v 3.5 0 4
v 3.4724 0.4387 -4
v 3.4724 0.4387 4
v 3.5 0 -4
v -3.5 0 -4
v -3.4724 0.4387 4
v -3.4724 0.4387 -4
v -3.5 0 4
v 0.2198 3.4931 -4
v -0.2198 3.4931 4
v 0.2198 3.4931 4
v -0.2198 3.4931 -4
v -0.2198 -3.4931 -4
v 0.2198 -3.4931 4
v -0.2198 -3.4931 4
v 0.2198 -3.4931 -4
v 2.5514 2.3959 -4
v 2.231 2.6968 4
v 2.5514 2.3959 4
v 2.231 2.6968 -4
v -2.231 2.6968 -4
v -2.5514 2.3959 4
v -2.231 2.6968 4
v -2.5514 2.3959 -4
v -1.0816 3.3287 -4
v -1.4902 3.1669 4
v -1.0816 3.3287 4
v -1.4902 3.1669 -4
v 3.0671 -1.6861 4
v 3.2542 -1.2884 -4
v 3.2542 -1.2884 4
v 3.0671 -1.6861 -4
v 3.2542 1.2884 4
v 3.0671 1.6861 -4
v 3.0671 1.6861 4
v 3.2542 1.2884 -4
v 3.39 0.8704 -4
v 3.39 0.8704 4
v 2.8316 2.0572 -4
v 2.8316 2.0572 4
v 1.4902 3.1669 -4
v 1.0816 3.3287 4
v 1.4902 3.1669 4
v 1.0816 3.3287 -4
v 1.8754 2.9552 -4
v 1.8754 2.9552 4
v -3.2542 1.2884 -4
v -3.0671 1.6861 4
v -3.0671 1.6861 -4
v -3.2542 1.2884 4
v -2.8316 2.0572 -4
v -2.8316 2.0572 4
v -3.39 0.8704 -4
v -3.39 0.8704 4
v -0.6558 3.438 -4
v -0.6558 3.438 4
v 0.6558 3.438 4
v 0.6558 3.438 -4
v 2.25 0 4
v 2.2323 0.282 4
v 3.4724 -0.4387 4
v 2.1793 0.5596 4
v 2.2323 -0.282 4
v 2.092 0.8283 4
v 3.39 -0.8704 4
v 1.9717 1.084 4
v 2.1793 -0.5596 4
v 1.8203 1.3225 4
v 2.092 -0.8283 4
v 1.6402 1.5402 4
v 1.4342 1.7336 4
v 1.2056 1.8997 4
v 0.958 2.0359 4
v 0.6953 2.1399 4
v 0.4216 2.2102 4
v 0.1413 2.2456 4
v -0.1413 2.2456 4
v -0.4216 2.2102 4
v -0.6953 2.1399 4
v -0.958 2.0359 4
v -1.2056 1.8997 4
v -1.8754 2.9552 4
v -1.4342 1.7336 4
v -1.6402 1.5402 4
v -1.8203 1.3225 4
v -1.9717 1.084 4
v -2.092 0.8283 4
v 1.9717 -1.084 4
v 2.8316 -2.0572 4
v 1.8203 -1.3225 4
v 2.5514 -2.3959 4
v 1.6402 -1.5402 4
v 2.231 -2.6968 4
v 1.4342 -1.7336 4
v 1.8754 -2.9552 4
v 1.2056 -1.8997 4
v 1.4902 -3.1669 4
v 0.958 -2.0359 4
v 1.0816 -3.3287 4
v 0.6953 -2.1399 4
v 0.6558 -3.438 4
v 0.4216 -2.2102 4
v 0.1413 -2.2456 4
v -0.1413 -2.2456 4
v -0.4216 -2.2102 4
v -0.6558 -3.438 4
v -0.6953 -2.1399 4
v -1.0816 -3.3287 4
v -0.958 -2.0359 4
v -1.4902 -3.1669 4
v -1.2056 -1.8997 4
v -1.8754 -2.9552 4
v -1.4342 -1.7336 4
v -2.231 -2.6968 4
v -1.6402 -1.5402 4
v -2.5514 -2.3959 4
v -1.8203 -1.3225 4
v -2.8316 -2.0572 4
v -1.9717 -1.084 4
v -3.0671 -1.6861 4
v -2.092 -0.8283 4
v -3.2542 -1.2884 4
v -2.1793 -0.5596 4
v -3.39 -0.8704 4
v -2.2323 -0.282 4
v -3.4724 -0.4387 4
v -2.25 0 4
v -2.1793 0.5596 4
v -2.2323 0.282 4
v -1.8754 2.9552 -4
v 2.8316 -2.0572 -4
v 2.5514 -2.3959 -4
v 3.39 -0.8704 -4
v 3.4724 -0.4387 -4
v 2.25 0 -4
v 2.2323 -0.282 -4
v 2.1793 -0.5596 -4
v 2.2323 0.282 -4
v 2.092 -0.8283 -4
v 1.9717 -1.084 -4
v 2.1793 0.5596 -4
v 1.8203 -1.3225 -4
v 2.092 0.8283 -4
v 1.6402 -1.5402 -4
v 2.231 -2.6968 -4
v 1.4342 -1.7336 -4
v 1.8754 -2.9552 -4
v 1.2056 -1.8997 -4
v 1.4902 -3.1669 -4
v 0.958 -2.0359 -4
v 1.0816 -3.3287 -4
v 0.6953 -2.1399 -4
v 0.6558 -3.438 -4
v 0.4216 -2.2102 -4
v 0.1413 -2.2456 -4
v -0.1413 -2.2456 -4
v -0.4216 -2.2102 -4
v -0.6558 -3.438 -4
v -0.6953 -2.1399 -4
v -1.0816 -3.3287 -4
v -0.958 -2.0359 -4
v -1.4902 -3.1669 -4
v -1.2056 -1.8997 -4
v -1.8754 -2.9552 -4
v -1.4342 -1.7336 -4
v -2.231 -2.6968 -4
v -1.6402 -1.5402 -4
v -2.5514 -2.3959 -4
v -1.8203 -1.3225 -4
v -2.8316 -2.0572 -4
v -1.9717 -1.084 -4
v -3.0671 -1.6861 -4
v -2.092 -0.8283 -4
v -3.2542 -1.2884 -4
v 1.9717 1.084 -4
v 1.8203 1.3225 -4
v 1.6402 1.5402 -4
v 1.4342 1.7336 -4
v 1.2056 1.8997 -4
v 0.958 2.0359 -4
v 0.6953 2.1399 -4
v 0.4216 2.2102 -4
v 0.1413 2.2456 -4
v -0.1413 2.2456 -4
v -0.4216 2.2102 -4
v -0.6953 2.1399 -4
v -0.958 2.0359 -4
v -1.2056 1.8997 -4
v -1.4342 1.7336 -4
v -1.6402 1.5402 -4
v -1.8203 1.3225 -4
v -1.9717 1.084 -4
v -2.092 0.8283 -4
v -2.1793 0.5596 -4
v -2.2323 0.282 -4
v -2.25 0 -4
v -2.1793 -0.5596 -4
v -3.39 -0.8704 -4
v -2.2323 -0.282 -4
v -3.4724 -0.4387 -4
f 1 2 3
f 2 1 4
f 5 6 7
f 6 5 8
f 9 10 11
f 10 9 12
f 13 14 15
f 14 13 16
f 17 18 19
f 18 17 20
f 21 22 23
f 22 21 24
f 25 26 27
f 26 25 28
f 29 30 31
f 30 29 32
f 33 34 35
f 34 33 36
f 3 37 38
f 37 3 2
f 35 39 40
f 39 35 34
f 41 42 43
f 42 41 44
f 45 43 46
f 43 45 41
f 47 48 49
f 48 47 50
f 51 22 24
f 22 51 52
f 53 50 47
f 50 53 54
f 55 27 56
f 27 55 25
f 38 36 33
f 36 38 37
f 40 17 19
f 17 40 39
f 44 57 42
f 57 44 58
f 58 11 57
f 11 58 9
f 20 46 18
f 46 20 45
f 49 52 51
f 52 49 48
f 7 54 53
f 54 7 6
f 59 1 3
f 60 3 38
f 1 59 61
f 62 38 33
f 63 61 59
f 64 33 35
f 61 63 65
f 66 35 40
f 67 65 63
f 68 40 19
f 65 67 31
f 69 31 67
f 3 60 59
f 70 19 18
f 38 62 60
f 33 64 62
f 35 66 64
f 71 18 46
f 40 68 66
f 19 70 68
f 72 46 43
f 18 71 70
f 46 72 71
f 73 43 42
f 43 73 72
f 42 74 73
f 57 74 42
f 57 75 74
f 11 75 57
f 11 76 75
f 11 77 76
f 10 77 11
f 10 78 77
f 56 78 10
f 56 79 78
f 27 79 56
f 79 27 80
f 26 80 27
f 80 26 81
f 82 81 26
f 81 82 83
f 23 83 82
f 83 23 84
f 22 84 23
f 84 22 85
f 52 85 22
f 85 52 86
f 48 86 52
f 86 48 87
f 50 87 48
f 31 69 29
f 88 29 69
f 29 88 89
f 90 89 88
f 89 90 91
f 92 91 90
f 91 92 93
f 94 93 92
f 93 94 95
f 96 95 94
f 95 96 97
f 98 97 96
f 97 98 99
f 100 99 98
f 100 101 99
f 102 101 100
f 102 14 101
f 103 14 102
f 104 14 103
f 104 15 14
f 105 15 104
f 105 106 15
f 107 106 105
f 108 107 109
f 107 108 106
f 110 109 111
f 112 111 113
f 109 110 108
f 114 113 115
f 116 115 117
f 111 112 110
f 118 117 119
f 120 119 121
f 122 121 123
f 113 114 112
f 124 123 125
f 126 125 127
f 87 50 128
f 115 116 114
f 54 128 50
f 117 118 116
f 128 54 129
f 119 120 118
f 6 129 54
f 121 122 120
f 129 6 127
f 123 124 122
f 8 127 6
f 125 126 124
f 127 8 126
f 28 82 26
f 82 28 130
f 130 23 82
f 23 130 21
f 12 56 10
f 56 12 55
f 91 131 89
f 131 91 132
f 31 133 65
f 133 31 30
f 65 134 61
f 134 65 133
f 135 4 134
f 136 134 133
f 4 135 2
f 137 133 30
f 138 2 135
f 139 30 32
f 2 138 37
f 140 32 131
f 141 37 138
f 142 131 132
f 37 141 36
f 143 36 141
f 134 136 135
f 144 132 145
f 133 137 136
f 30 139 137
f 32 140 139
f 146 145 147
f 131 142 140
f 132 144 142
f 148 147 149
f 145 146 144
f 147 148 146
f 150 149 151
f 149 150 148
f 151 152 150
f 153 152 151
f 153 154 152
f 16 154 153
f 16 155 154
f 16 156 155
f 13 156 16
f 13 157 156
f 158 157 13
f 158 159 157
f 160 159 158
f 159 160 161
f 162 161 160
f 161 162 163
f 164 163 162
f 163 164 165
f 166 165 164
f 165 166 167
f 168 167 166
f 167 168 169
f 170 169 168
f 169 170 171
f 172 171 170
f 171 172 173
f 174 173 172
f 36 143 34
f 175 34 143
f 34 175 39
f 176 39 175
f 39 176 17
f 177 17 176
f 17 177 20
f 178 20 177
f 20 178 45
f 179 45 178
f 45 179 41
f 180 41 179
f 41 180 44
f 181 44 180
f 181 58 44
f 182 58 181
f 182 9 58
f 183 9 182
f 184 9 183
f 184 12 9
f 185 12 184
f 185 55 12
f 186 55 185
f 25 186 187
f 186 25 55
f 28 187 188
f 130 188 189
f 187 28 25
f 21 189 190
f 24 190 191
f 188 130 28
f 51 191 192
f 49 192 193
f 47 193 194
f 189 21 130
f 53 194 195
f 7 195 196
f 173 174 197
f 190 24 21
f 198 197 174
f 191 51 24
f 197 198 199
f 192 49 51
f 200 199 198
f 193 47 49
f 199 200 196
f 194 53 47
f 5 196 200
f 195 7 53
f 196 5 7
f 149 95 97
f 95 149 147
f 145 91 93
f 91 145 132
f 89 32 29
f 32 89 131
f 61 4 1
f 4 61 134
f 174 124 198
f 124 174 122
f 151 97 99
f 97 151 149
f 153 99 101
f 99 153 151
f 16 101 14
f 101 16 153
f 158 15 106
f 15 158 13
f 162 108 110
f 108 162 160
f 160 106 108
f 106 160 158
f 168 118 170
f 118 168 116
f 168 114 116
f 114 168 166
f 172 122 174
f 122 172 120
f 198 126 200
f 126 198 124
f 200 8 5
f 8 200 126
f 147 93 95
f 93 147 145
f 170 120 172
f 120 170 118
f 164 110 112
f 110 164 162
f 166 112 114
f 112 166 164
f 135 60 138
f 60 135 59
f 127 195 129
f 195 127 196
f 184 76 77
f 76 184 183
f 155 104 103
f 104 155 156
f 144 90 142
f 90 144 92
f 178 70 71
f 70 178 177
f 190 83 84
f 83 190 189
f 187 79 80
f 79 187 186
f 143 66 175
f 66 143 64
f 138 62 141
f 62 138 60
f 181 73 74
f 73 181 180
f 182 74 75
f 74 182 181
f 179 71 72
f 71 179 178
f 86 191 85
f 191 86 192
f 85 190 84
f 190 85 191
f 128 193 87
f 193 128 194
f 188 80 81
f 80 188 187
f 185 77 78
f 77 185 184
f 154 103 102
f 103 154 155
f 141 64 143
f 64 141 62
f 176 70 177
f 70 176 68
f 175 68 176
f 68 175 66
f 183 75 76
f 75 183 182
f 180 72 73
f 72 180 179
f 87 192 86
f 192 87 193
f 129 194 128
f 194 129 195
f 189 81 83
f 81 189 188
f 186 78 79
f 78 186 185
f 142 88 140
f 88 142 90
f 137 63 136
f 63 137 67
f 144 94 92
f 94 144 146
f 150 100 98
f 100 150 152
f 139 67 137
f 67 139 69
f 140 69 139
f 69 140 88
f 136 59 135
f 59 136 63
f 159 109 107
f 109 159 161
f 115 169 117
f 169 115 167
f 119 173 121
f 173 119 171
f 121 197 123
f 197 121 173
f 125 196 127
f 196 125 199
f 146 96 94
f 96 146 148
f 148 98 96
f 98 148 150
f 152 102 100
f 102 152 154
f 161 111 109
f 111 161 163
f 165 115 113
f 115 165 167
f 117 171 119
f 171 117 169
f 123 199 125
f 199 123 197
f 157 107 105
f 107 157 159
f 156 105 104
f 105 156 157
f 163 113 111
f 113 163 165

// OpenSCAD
$fn = 50;


difference() {
	union() {
		translate(v = [0, 0, -4.0000000000]) {
			cylinder(h = 8, r = 3.5000000000);
		}
	}
	union() {
		translate(v = [0, 0, -100.0000000000]) {
			cylinder(h = 200, r = 2.2500000000);
		}
	}
}
